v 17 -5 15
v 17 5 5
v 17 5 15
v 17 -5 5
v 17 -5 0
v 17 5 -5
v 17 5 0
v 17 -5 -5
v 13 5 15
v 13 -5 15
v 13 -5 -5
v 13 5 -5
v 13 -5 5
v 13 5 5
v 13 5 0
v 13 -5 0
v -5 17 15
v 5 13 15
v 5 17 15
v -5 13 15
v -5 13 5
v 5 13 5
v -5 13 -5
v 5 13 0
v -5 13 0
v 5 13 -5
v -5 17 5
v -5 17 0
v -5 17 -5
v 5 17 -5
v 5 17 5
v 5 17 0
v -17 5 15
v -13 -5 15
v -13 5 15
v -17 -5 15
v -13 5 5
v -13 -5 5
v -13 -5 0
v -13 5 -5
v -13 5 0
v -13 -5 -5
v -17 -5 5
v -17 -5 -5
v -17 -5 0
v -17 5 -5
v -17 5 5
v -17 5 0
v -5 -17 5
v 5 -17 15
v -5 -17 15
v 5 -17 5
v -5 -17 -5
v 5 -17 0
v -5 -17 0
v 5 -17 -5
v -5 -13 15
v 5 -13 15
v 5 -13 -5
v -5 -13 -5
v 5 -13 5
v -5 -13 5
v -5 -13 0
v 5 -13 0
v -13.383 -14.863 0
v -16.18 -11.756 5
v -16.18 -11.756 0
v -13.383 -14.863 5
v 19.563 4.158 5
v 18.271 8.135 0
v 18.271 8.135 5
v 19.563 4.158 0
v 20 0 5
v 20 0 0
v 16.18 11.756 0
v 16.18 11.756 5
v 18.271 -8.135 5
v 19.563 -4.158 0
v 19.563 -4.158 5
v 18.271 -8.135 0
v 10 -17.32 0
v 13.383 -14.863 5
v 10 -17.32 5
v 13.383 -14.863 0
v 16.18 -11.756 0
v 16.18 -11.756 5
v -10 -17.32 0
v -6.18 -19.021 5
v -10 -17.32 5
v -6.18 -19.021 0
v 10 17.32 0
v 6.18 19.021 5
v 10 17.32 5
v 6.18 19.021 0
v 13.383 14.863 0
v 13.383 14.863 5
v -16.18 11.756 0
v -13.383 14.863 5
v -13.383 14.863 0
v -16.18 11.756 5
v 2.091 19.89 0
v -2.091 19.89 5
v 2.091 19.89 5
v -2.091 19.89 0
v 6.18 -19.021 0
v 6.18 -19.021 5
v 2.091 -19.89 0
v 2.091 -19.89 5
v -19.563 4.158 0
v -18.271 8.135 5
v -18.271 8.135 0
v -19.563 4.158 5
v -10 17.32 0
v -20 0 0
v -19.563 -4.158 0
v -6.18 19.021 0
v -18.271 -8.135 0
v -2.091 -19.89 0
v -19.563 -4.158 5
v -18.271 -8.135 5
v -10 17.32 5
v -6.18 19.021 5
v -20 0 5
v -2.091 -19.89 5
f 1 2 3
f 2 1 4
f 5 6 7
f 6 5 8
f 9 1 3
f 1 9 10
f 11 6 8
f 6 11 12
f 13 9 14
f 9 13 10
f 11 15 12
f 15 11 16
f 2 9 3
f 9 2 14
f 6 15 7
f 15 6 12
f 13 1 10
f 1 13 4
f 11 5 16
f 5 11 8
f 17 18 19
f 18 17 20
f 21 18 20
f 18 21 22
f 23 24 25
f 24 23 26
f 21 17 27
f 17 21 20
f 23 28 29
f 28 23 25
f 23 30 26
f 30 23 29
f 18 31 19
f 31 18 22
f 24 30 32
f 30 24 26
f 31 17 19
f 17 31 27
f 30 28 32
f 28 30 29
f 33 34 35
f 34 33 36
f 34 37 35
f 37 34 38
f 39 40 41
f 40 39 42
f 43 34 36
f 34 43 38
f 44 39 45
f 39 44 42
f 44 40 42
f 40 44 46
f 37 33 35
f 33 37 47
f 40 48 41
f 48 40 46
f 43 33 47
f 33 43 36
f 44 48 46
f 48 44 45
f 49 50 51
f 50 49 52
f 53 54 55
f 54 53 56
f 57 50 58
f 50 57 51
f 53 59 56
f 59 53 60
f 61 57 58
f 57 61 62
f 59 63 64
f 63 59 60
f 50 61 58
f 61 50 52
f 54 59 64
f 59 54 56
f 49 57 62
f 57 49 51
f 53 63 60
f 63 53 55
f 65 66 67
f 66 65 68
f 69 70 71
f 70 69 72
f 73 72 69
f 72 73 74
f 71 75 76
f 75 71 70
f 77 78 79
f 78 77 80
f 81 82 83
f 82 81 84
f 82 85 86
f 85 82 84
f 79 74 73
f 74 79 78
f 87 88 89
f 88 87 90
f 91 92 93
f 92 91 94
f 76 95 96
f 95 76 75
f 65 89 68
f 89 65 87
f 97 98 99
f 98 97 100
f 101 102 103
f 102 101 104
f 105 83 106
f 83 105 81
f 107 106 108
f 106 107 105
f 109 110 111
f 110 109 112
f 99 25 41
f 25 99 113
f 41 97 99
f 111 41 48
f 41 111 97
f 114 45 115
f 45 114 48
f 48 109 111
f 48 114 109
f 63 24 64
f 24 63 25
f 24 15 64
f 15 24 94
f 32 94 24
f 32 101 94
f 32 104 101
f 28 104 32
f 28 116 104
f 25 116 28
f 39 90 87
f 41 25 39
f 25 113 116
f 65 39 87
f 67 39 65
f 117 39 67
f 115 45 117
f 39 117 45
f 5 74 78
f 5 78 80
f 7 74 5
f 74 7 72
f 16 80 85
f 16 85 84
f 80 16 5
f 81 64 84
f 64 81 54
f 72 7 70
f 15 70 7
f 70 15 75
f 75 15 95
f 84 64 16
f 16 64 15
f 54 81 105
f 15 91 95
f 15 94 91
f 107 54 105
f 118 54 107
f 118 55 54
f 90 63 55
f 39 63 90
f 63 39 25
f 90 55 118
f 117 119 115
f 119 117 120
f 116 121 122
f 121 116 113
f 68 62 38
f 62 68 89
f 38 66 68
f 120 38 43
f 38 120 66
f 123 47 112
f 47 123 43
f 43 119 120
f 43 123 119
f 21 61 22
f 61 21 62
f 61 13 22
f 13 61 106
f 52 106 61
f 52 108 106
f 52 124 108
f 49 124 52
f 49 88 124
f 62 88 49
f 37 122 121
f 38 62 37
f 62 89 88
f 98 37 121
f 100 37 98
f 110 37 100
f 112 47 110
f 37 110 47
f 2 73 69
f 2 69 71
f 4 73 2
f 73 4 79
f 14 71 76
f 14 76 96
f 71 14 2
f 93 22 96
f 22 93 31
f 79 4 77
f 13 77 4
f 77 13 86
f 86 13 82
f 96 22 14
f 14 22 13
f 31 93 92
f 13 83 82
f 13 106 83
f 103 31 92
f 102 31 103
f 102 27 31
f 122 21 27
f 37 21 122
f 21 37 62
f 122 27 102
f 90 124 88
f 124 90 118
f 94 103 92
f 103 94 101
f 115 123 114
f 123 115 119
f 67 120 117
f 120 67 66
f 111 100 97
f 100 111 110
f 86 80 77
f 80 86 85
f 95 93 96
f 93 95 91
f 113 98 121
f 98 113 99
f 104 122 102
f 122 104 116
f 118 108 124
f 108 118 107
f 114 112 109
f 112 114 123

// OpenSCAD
// Parameters
base_disk_radius = 20; // Radius of the base disk
base_disk_thickness = 5; // Thickness of the base disk
prong_width = 4; // Width of each vertical prong
prong_depth = 10; // Depth of each vertical prong
prong_height = 20; // Height of each vertical prong
num_prongs = 4; // Number of prongs
prong_spacing_angle = 360 / num_prongs; // Angle between prongs

// Base disk module
module base_disk() {
    cylinder(h = base_disk_thickness, r = base_disk_radius, center = false);
}

// Vertical prong module
module vertical_prong() {
    cube([prong_width, prong_depth, prong_height], center = true);
}

// Assembly
module flexible_coupling() {
    // Layer 2: Base disk
    base_disk();

    // Layer 1: Vertical prongs
    for (i = [0 : num_prongs - 1]) {
        rotate([0, 0, i * prong_spacing_angle]) {
            translate([base_disk_radius - prong_depth / 2, 0, base_disk_thickness]) {
                vertical_prong();
            }
        }
    }
}

// Render the flexible coupling
flexible_coupling();
